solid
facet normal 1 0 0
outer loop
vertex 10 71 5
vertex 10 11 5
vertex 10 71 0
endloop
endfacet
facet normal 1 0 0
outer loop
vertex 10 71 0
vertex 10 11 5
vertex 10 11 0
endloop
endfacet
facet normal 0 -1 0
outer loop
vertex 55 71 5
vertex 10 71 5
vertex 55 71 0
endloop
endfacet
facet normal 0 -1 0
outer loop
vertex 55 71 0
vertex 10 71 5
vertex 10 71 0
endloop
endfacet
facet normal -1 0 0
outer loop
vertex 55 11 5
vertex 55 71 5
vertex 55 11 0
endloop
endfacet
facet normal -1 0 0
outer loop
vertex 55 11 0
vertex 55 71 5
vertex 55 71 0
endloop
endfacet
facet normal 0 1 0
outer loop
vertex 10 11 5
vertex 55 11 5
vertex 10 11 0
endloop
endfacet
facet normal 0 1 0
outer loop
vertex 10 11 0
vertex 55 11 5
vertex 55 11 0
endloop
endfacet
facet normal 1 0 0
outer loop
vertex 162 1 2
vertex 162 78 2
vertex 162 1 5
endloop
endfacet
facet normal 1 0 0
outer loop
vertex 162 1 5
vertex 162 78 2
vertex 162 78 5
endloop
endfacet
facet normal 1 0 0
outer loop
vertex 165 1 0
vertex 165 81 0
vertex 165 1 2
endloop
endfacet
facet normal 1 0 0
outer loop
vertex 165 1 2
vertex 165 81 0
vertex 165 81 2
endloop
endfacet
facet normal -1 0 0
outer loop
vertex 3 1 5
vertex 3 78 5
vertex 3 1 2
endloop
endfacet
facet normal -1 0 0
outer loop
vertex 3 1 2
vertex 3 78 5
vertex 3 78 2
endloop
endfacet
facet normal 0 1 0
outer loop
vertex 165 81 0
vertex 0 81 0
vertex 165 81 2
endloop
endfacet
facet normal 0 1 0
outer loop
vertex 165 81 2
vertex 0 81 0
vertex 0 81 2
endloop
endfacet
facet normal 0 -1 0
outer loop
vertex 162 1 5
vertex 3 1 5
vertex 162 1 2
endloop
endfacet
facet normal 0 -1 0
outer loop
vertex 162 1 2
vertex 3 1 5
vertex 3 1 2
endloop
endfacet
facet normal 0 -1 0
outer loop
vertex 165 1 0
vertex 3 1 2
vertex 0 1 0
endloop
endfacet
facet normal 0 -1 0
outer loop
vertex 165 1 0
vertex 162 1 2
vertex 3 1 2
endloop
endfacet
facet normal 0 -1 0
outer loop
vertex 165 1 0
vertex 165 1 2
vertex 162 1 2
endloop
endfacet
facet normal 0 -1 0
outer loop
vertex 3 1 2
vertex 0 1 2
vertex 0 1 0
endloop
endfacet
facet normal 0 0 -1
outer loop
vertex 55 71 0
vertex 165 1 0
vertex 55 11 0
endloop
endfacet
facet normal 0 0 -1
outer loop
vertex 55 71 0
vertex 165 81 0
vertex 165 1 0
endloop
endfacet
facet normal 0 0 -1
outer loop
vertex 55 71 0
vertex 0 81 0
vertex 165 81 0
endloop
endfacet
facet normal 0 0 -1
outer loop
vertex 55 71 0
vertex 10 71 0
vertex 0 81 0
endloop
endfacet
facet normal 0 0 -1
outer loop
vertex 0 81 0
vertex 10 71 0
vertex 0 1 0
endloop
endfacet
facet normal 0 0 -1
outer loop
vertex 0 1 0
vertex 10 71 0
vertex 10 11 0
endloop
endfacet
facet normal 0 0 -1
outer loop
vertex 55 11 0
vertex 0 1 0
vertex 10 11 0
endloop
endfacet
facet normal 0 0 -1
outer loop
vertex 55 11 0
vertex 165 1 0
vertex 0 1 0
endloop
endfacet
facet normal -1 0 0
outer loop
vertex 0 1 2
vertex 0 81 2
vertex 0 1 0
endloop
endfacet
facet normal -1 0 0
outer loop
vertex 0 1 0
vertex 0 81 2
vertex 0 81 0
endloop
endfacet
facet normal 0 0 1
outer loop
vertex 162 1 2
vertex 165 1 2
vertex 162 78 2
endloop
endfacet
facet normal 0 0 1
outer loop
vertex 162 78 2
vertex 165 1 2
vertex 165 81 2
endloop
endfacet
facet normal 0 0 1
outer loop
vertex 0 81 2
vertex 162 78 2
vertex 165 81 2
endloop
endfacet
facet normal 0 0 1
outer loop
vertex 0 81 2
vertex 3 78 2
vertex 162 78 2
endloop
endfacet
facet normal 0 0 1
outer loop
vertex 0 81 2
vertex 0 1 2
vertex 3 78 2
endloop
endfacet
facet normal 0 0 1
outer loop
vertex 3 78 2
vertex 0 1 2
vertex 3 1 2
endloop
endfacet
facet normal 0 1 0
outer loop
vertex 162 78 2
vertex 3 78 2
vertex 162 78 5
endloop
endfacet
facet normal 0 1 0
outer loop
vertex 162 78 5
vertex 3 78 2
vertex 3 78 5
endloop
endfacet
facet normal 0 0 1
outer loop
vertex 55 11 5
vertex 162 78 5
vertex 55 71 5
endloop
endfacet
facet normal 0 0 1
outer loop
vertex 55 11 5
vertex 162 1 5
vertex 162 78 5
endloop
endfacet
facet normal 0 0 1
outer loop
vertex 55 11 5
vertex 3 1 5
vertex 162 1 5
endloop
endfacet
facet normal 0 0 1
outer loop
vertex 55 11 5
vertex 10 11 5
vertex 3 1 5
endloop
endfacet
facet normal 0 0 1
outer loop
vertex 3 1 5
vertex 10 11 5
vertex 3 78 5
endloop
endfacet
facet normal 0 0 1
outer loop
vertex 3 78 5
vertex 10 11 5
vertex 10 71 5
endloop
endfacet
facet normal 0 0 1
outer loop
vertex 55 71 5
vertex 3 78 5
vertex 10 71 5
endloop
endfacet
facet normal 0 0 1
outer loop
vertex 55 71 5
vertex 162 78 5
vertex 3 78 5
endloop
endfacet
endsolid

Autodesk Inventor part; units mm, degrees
ref_plane "YZ Plane" through (0, 0, 0) normal (1, 0, 0) x (0, 1, 0)
ref_plane "XZ Plane" through (0, 0, 0) normal (0, 1, 0) x (-1, 0, 0)
ref_plane "XY Plane" through (0, 0, 0) normal (0, 0, 1) x (1, 0, 0)
sketch "Sketch1" plane through (0, 0, 0) normal (0, 0, 1) x (1, 0, 0)
  line L0 (0, 0) -> (140, 0)
  line L1 (140, 0) -> (140, 80)
  line L2 (140, 80) -> (0, 80)
  line L3 (0, 80) -> (0, 0)
  dimension "d0" = 140
  dimension "d1" = 80
extrude "Extrusion1" add sketch "Sketch1" along normal blind 2
sketch "Sketch2" plane through (0, 0, 2) normal (0, 0, 1) x (1, 0, 0)
  line L0 (0, 80) -> (2, 80)
  line L1 (2, 80) -> (2, 78)
  line L2 (2, 78) -> (0, 78)
  line L3 (0, 78) -> (0, 80)
  line L4 (2, 78) -> (138, 78)
  line L5 (138, 78) -> (138, 2)
  line L6 (138, 2) -> (2, 2)
  line L7 (2, 2) -> (2, 78)
  dimension "d4" = 2
  dimension "d5" = 2
  dimension "d6" = 136
  dimension "d7" = 76
extrude "Extrusion2" add sketch "Sketch2" along normal blind 3 contours L4 L5 L6 L7
sketch "Sketch3" plane through (0, 0, 2) normal (0, 0, 1) x (1, 0, 0)
  line L0 (0, 0) -> (140, 0) projected
  line L1 (2, 2) -> (138, 2)
  line L2 (138, 2) -> (138, 0)
  line L3 (138, 0) -> (2, 0)
  line L4 (2, 0) -> (2, 2)
extrude "Extrusion3" add sketch "Sketch3" along normal blind 3
sketch "Sketch4" plane through (0, 0, 0) normal (0, 0, -1) x (-1, 0, 0)
  line L0 (0, 0) -> (-140, 0) projected
  line L1 (0, 80) -> (0, 0) projected
  line L2 (-140, 0) -> (0, 0)
  line L3 (0, 0) -> (0, 1)
  line L4 (0, 1) -> (-140, 1)
  line L5 (-140, 1) -> (-140, 0)
  dimension "d12" = 1
extrude "Extrusion4" cut sketch "Sketch4" against normal blind 7.5
sketch "Sketch5" plane through (0, 0, 0) normal (0, 0, -1) x (-1, 0, 0)
  line L0 (-140, 80) -> (0, 80)
  line L1 (0, 80) -> (0, 81)
  line L2 (0, 81) -> (-140, 81)
  line L3 (-140, 81) -> (-140, 80)
  point P0 (0, 0)
  dimension "d15" = 1
extrude "Extrusion5" add sketch "Sketch5" against normal blind 2
sketch "Sketch6" plane through (0, 0, 5) normal (0, 0, 1) x (1, 0, 0)
  line L0 (138, 78) -> (2, 78) projected
  line L1 (2, 1) -> (3, 1)
  line L2 (3, 1) -> (3, 78)
  line L3 (3, 78) -> (2, 78)
  line L4 (2, 78) -> (2, 1)
  line L5 (138, 1) -> (137, 1)
  line L6 (137, 1) -> (137, 78)
  line L7 (137, 78) -> (138, 78)
  line L8 (138, 78) -> (138, 1)
  point P0 (0, 0)
  dimension "d18" = 1
  dimension "d19" = 1
extrude "Extrusion6" cut sketch "Sketch6" against normal blind 3
sketch "Sketch7" plane through (0, 0, 0) normal (0, 0, -1) x (-1, 0, 0)
  line L0 (-140, 1) -> (0, 1) projected
  line L1 (0, 1) -> (0, 81) projected
  line L2 (0, 81) -> (-140, 81) projected
  line L3 (-140, 1) -> (-140, 81) projected
  line L4 (0, 1) -> (-165, 1)
  line L5 (-165, 1) -> (-165, 81)
  line L6 (-165, 81) -> (0, 81)
  line L7 (0, 81) -> (0, 1)
  point P0 (0, 0)
  dimension "d22" = 165
extrude "Extrusion7" add sketch "Sketch7" against normal blind 2 contours L4 L5 L6 L3
sketch "Sketch9" plane through (0, 0, 2) normal (0, 0, 1) x (1, 0, 0)
  line L0 (137, 1) -> (162, 1)
  line L1 (162, 1) -> (162, 78)
  line L2 (162, 78) -> (137, 78)
  line L3 (137, 78) -> (137, 1)
  point P0 (0, 0)
  dimension "d25" = 25
extrude "Extrusion8" add sketch "Sketch9" along normal blind 3
sketch "Sketch10" plane through (0, 0, 0) normal (0, 0, -1) x (-1, 0, 0)
  line L0 (0, 1) -> (-10, 1)
  line L1 (-10, 1) -> (-10, 11)
  line L2 (-10, 11) -> (0, 11)
  line L3 (0, 11) -> (0, 1)
  line L4 (0, 81) -> (-10, 81)
  line L5 (-10, 81) -> (-10, 71)
  line L6 (-10, 71) -> (0, 71)
  line L7 (0, 71) -> (0, 81)
  line L8 (-10, 71) -> (-55, 71)
  line L9 (-55, 71) -> (-55, 11)
  line L10 (-55, 11) -> (-10, 11)
  line L11 (-10, 11) -> (-10, 71)
  point P0 (0, 0)
  dimension "d28" = 10
  dimension "d29" = 10
  dimension "d30" = 10
  dimension "d31" = 10
  dimension "d32" = 45
extrude "Extrusion9" cut sketch "Sketch10" against normal blind 10.25 contours L10 L9 L8 L11
properties part number "Receiver Case top"
